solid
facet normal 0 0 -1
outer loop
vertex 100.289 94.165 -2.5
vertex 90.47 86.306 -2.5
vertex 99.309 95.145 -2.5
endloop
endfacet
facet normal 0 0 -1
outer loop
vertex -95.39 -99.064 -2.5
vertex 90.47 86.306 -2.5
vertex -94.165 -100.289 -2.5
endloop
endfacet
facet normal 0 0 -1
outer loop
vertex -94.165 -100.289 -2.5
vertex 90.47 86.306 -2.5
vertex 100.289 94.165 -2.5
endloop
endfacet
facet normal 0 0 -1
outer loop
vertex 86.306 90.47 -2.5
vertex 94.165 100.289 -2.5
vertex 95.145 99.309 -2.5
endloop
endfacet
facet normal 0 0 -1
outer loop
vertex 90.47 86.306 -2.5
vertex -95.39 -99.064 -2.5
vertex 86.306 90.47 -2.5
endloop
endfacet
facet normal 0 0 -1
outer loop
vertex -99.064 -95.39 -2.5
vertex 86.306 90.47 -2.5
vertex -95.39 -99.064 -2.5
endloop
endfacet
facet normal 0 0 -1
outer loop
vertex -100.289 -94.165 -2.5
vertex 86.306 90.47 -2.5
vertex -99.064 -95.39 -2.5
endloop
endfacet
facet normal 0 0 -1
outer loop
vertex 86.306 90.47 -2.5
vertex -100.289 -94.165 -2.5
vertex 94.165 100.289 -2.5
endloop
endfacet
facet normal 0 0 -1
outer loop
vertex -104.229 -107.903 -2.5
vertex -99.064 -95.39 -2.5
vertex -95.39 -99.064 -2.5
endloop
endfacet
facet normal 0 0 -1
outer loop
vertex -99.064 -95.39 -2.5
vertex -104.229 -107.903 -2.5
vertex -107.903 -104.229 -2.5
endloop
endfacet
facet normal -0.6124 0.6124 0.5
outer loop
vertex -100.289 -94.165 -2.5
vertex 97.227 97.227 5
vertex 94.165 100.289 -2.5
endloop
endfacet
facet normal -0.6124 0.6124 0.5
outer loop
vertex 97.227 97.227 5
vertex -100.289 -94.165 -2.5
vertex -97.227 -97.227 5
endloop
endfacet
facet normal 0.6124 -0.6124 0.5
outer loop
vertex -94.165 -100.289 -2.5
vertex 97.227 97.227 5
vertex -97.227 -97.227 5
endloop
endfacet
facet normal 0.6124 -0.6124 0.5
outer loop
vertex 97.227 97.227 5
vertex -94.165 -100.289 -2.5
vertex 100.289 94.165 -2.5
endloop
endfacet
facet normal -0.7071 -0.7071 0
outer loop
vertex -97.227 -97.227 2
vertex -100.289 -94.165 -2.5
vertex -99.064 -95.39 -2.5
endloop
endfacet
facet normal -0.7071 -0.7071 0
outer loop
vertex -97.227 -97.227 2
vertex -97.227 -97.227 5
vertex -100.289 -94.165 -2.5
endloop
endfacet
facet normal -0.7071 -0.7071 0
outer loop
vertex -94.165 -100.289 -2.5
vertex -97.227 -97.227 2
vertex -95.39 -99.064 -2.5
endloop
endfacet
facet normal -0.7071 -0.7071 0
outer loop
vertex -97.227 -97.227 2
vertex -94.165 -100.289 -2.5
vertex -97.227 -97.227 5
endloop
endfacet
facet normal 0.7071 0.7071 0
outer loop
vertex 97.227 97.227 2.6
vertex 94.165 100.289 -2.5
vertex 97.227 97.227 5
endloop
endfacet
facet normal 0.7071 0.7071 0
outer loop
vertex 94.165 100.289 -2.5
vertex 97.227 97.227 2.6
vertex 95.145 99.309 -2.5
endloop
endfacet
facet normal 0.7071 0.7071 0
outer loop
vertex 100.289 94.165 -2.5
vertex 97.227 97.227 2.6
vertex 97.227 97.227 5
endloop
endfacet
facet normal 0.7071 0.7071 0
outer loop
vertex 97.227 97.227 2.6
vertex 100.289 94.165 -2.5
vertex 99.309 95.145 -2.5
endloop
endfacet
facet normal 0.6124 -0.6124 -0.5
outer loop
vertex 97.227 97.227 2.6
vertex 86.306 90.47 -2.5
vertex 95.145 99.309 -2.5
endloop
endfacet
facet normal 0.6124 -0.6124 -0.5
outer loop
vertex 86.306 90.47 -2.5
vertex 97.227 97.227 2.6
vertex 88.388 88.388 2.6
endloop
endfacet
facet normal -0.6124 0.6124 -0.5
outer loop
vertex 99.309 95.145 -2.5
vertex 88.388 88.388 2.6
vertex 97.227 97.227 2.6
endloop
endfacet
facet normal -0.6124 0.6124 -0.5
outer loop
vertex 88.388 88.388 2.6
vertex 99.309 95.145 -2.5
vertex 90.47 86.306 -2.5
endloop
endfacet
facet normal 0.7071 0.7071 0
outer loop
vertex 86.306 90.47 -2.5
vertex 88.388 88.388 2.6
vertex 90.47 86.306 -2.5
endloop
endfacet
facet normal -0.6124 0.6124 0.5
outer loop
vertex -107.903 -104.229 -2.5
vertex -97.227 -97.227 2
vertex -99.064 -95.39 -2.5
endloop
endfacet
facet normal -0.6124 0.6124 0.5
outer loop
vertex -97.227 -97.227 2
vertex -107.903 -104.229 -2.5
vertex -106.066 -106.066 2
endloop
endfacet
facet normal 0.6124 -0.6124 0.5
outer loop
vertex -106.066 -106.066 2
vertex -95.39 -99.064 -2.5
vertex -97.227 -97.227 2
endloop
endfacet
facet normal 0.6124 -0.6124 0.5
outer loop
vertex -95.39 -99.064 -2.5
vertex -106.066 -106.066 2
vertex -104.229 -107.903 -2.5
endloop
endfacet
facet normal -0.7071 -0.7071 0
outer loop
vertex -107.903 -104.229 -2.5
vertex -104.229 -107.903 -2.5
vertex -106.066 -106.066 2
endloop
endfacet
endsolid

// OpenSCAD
include <../../lib/lib2.scad>

longeron_T_275mm_delta(0,0,0, 0,180,45, 275);

module longeron_T_275mm_delta(px=0, py=0, pz=0, rx=0, ry=0, rz=0, l=275){
    translate([(px), (py), pz])
    rotate([rx,ry,rz]){
        difference(){
            yCyl(5,l,  0,0,0,  0,90,0,$fn=3);
            yCyl(3.4,25,  -l/2,0,0.8,  0,90,0,$fn=3);
        }//difference
        yCyl(3,25,  l/2,0,1,  0,90,0,$fn=3);
        
	}//transform
}//module
